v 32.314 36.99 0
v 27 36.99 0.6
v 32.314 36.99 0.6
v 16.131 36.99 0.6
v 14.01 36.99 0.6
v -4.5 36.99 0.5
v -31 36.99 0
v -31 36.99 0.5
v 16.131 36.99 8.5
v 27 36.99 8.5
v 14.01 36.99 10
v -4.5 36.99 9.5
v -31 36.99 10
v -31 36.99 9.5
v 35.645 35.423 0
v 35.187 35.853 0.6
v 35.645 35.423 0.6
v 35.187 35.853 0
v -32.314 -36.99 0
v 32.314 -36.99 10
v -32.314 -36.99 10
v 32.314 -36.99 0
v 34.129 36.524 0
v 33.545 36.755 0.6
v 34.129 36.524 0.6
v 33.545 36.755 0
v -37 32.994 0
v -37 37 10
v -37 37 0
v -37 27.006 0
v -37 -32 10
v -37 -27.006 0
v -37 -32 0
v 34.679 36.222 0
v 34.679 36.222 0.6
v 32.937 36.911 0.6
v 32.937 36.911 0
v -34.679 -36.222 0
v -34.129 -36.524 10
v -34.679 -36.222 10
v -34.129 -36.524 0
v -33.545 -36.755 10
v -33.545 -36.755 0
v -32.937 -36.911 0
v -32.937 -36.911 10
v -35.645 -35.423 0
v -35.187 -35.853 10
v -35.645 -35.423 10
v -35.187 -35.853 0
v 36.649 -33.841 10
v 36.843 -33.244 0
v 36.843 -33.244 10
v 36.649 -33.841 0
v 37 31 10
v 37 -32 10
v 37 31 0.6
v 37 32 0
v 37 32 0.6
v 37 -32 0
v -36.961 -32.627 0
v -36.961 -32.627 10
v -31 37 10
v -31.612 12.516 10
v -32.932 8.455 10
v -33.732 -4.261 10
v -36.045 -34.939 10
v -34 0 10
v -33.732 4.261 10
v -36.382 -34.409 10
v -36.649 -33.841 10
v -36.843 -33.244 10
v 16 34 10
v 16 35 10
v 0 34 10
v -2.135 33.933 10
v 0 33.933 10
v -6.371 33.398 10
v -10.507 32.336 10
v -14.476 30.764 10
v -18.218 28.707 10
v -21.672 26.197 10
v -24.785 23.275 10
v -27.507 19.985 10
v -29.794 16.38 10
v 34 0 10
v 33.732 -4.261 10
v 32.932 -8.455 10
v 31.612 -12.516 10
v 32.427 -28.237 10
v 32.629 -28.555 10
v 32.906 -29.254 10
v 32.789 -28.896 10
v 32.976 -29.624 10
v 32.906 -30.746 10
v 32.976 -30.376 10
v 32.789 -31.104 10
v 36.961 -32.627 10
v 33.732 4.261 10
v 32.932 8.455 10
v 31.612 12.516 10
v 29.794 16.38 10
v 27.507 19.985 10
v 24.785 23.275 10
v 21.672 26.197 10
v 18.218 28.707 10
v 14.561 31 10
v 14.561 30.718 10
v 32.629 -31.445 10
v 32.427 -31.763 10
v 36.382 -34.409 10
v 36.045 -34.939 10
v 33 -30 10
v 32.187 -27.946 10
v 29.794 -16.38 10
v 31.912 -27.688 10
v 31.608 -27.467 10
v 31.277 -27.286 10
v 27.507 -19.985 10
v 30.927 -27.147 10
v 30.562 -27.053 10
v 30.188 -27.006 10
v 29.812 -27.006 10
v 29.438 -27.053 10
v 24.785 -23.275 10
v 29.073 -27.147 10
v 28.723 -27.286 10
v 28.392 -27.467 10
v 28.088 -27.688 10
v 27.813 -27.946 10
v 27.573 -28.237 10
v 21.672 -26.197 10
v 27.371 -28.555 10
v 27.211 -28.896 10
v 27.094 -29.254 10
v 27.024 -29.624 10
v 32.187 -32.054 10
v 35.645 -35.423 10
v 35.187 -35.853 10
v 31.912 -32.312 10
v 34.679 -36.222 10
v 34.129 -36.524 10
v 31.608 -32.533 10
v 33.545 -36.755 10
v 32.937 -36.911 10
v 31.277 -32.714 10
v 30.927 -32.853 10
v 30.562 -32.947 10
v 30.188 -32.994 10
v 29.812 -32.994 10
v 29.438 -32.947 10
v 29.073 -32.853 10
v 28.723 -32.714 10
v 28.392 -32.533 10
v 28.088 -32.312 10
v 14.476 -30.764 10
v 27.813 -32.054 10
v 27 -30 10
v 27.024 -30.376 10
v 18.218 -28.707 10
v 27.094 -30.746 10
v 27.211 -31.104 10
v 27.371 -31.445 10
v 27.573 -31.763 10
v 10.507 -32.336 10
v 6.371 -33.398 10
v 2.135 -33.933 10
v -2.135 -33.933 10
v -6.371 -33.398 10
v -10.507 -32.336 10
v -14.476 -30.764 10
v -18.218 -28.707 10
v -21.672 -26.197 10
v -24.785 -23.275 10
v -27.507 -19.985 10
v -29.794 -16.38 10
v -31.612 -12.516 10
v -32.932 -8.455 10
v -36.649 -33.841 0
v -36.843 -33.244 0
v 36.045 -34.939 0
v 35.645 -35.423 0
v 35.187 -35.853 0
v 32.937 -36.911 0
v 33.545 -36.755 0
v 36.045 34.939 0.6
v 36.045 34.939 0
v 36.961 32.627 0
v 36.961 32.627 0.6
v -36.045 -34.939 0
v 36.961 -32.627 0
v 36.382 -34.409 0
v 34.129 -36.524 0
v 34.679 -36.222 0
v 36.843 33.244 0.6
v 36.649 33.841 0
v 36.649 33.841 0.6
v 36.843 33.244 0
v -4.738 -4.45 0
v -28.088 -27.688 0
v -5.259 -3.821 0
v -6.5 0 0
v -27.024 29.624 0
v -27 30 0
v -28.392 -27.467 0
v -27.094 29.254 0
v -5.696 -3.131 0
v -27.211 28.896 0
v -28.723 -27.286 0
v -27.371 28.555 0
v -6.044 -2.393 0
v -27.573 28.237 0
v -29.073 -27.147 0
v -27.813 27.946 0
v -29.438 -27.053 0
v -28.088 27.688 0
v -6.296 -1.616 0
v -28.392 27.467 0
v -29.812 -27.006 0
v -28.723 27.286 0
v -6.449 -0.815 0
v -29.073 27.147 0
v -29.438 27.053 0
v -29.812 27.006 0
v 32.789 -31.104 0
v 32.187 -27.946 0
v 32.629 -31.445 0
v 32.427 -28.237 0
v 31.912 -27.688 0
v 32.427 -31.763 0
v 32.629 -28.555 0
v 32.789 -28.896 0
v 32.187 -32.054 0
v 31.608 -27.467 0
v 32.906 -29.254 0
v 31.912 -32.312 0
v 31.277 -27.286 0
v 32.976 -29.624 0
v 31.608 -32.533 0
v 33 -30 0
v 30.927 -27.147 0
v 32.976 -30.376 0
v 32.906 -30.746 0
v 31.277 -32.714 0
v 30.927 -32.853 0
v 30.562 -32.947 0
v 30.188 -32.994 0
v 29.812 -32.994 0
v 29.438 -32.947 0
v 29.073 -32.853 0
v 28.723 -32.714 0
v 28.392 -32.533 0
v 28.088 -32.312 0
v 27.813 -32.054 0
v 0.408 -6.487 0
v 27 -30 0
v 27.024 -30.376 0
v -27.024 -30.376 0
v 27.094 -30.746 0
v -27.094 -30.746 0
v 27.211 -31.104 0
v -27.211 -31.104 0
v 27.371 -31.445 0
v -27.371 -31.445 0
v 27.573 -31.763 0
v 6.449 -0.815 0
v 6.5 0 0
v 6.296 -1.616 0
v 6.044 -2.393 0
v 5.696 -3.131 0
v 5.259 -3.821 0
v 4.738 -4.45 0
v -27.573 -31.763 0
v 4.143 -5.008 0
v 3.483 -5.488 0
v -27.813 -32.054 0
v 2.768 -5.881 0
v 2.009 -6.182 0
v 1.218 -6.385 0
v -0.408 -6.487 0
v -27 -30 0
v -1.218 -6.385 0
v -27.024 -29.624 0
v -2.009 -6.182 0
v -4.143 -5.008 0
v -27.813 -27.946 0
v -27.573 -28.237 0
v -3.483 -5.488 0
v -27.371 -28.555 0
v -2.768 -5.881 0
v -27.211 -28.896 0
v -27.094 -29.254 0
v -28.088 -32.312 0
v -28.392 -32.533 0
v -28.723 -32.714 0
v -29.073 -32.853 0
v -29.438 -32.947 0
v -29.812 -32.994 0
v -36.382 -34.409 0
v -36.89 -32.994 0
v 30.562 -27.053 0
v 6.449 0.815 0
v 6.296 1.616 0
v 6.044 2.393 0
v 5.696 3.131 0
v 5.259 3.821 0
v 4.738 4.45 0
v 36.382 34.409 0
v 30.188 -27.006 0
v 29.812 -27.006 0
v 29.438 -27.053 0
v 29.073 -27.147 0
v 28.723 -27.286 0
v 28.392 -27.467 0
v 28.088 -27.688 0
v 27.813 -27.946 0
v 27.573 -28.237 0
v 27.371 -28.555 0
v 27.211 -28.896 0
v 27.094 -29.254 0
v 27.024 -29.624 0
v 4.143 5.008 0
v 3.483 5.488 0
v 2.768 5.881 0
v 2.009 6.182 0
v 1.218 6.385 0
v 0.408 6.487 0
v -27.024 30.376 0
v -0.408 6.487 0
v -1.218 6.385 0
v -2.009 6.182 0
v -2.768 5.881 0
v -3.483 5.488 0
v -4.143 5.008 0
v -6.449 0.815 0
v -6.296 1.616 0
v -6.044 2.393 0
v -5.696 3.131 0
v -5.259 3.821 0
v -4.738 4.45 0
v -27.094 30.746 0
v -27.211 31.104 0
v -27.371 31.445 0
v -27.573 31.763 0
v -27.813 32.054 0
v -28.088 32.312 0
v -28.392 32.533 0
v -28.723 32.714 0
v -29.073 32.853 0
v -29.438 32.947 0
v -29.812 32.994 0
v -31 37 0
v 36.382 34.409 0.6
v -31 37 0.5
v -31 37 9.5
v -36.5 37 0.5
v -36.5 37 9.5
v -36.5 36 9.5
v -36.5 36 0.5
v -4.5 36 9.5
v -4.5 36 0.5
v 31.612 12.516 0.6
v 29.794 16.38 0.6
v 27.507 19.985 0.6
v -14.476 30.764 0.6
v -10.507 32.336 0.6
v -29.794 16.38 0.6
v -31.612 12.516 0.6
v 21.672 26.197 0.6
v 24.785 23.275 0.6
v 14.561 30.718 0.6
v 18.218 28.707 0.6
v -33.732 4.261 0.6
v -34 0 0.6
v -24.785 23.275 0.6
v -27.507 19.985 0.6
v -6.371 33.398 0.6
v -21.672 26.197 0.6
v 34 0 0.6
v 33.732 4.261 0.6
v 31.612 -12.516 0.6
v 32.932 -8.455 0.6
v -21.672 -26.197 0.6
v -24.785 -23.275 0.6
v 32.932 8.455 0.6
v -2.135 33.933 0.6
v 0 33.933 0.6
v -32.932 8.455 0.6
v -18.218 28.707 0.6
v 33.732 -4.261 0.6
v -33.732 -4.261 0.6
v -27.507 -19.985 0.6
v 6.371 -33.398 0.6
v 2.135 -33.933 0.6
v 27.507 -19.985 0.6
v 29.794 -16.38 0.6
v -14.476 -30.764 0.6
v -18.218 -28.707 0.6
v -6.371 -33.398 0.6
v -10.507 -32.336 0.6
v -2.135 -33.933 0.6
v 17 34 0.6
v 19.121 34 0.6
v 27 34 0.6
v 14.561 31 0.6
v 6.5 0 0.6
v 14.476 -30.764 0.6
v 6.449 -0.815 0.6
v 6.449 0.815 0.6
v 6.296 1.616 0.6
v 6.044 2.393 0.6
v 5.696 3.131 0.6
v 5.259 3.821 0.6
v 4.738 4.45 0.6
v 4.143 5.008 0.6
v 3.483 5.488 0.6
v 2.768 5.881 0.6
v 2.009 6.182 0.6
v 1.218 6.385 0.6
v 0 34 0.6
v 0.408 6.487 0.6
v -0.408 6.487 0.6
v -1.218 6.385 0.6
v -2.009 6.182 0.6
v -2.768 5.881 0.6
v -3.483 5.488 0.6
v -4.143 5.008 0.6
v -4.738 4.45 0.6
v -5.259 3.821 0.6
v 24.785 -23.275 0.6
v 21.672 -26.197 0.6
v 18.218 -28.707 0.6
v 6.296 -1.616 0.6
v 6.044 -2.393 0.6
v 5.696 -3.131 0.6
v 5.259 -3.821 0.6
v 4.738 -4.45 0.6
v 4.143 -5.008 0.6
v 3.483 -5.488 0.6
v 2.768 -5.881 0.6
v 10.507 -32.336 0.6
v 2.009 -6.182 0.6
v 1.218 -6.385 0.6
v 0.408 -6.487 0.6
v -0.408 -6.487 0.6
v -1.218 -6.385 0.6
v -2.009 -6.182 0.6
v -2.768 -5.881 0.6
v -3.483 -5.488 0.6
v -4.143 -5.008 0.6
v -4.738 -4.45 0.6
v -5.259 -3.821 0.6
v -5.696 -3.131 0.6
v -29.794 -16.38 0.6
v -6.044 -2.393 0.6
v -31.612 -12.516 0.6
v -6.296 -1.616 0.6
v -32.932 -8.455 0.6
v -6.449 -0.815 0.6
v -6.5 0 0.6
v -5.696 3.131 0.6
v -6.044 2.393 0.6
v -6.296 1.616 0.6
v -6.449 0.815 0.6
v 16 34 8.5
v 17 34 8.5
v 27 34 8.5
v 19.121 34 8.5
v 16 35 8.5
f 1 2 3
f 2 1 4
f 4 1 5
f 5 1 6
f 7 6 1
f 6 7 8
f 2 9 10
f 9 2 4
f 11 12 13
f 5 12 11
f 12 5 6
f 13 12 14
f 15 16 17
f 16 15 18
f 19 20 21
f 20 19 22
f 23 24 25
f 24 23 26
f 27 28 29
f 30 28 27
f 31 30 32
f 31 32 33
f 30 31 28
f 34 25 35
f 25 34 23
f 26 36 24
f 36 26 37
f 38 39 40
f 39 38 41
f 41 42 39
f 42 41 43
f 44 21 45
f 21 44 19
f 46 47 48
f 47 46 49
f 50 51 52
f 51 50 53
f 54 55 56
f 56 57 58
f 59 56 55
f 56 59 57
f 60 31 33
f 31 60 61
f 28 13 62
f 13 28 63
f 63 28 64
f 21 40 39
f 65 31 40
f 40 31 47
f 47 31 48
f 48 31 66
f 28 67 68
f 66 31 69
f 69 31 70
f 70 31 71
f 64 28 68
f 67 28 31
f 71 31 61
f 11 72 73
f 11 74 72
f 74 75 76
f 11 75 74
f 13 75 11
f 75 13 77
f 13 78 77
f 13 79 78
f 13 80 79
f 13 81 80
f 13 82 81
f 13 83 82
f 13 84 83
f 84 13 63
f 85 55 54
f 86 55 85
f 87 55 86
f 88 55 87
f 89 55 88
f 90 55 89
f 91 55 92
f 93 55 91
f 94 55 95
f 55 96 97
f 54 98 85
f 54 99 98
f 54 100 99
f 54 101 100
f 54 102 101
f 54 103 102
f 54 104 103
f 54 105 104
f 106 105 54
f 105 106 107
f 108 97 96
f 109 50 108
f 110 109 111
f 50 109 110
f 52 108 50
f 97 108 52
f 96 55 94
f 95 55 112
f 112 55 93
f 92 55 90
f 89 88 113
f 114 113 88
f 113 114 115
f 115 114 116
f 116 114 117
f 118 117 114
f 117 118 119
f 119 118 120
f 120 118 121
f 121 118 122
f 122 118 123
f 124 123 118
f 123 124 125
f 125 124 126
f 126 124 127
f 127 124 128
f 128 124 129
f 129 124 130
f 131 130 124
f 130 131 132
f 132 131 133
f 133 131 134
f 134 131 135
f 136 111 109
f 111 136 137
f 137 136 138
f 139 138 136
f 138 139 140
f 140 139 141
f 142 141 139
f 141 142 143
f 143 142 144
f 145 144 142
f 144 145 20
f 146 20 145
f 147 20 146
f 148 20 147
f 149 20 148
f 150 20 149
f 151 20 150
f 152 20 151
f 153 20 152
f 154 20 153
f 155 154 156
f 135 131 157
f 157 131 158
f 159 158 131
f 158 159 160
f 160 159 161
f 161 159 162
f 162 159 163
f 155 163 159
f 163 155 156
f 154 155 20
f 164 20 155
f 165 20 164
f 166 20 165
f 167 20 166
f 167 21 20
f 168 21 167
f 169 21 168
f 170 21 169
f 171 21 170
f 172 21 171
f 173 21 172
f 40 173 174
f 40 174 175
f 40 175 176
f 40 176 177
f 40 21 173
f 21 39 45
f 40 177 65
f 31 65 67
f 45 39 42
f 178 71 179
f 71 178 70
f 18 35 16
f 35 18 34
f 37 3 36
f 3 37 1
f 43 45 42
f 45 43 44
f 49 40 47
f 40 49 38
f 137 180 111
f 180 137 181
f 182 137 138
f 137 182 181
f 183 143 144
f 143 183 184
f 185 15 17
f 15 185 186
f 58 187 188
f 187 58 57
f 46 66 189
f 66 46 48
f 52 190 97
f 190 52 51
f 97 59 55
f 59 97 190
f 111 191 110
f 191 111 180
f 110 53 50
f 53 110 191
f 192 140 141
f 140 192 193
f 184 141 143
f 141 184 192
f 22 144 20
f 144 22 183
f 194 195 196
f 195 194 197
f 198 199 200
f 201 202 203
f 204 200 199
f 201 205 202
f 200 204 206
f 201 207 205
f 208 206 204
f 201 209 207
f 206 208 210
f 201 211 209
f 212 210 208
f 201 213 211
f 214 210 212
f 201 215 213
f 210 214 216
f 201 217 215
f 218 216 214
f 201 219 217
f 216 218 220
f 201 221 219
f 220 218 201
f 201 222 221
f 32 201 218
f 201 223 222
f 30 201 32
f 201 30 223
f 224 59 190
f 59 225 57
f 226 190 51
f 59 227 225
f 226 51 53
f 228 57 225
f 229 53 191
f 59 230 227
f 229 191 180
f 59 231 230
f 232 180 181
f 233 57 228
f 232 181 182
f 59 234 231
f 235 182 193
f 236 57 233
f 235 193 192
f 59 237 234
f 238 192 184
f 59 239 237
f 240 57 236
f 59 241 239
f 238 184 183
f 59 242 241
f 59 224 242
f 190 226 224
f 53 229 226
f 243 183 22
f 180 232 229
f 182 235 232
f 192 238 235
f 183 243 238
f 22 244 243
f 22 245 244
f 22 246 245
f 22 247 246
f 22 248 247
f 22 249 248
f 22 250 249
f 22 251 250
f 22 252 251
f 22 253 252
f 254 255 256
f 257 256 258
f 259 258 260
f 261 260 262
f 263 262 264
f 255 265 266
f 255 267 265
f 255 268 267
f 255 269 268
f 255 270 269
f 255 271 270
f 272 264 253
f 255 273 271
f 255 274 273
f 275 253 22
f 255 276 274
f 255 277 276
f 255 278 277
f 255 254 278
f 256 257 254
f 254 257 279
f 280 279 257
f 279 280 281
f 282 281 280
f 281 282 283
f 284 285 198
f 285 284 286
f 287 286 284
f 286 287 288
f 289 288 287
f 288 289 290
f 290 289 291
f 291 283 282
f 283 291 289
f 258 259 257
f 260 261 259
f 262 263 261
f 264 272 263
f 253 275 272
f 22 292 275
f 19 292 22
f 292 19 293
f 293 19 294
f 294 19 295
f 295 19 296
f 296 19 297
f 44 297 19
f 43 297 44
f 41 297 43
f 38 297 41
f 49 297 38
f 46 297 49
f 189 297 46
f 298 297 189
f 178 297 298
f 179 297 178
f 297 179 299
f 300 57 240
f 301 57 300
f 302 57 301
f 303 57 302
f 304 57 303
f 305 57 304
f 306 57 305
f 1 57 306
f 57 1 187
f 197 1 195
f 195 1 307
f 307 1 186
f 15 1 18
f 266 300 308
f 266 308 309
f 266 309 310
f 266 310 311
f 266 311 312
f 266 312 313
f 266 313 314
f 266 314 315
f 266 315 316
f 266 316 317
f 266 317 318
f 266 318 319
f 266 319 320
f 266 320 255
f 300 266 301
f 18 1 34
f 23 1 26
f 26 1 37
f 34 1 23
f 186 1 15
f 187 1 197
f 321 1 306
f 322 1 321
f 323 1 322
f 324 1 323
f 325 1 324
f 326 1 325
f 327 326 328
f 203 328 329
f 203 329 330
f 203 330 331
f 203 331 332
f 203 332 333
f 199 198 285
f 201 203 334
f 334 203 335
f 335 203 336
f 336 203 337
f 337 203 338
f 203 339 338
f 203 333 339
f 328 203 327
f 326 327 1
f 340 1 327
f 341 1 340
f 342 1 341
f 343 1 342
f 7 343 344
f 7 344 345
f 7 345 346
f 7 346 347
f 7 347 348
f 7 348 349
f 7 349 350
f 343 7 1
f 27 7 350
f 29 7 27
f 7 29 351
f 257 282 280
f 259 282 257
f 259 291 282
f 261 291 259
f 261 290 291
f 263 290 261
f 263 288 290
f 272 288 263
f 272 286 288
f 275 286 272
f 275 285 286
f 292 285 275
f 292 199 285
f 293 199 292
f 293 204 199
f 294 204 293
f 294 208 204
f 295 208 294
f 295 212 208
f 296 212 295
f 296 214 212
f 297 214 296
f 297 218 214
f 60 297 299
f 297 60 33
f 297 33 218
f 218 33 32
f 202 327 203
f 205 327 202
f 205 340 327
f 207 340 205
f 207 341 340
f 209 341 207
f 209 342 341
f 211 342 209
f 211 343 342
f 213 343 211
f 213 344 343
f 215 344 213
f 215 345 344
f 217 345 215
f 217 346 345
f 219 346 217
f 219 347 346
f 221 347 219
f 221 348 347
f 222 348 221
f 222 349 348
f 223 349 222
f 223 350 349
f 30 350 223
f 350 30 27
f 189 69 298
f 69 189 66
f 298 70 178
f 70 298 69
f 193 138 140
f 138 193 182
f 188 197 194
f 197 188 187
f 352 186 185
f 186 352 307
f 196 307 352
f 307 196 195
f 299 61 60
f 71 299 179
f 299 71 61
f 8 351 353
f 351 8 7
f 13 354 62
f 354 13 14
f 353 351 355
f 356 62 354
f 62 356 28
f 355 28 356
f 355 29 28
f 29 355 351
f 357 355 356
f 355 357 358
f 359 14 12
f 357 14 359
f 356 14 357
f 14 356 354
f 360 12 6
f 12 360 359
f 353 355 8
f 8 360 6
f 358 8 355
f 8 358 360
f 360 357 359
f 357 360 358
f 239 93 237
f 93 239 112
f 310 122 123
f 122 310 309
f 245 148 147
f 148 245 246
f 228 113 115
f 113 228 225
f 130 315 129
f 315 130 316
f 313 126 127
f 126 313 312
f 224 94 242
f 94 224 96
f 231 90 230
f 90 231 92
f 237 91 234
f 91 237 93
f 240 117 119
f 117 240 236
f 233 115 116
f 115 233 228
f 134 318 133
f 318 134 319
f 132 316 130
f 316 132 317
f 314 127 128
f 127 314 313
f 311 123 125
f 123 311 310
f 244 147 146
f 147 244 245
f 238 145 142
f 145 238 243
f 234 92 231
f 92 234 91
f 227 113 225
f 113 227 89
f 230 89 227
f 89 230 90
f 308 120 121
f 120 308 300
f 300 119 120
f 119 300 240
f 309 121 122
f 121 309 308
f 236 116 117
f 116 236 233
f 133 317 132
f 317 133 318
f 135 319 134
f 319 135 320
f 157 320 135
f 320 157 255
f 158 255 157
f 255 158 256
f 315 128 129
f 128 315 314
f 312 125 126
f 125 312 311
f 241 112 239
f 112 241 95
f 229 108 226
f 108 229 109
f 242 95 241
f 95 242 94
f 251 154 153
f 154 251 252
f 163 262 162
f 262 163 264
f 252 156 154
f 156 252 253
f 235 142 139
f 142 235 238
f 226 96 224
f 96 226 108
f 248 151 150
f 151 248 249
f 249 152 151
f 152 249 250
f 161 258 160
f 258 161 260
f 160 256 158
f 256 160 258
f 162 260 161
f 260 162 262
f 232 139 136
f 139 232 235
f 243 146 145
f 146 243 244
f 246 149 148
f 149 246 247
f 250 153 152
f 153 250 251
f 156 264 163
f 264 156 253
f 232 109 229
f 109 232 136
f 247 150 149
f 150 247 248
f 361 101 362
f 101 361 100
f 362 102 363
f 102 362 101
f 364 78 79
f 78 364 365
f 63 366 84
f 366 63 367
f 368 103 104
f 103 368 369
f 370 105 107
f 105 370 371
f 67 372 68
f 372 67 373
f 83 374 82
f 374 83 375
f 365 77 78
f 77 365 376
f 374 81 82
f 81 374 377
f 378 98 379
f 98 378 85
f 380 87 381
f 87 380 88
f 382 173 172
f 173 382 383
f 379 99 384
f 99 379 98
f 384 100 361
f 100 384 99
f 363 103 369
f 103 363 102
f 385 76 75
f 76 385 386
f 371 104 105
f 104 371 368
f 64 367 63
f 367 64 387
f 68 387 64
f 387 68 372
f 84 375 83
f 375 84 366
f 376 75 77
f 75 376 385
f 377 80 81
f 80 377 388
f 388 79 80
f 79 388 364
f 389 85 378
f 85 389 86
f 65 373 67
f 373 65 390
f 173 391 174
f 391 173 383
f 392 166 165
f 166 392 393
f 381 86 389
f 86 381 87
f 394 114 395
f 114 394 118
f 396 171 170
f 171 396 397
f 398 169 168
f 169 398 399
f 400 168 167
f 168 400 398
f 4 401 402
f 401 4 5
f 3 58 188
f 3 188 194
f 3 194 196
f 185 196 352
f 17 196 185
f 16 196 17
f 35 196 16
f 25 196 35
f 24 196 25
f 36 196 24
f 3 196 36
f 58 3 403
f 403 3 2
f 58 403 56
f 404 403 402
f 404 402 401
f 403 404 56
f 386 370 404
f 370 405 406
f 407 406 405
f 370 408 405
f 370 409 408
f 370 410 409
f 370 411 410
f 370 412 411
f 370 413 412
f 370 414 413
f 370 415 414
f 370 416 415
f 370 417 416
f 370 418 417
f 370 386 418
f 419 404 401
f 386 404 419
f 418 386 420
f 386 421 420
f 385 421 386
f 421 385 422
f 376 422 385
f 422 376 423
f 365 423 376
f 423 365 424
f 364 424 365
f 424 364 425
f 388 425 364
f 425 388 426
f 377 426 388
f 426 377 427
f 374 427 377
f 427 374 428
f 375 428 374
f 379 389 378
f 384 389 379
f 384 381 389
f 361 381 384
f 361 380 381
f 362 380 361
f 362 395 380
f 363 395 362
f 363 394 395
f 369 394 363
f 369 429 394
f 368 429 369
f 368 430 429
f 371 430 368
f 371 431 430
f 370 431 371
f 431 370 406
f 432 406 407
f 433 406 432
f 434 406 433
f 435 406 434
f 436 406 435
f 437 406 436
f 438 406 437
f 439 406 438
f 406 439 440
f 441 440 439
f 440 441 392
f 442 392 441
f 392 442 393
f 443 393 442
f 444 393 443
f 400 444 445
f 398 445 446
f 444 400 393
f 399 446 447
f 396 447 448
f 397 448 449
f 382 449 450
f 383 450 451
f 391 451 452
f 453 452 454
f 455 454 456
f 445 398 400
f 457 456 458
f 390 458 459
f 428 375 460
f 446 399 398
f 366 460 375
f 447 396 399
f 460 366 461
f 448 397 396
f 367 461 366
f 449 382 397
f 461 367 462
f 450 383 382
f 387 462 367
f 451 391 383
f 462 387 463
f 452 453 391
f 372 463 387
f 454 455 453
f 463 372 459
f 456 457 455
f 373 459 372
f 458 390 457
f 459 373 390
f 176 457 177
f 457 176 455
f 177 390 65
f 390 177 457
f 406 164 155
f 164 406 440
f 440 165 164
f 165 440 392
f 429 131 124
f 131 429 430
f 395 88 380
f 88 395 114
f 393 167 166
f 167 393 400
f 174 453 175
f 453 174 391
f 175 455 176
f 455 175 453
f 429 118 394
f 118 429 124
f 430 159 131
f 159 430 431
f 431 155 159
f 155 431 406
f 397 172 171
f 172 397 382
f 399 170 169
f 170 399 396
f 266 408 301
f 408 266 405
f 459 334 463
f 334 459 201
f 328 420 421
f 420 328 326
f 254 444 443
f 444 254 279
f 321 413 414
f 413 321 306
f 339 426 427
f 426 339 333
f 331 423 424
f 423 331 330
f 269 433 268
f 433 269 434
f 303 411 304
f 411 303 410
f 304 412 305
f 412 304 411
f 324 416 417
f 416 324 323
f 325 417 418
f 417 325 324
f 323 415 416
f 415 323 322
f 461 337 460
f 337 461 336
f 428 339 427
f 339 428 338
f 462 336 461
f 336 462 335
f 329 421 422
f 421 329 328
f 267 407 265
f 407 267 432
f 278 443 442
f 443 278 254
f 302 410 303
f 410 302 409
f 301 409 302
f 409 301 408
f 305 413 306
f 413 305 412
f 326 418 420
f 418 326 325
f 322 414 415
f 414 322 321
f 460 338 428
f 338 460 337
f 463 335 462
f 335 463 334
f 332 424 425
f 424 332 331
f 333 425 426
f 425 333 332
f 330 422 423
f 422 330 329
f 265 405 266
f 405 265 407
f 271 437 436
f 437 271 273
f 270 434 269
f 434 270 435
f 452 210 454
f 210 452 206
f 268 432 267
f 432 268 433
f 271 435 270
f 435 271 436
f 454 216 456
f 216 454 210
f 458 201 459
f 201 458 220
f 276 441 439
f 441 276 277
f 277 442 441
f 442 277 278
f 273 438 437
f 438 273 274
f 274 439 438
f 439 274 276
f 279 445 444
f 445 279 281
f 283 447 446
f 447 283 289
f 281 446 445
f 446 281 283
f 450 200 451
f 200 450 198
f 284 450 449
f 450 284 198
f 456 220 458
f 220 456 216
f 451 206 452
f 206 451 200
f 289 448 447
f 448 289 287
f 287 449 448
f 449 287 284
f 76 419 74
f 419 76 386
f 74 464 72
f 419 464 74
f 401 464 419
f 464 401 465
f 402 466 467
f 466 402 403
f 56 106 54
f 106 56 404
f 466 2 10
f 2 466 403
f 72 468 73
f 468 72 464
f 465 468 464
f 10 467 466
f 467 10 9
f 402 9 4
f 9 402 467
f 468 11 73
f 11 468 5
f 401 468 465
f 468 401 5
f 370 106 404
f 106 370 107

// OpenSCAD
$fn = 50;


difference() {
	union() {
		hull() {
			translate(v = [-32.0000000000, 32.0000000000, 0]) {
				cylinder(h = 10, r = 5);
			}
			translate(v = [32.0000000000, 32.0000000000, 0]) {
				cylinder(h = 10, r = 5);
			}
			translate(v = [-32.0000000000, -32.0000000000, 0]) {
				cylinder(h = 10, r = 5);
			}
			translate(v = [32.0000000000, -32.0000000000, 0]) {
				cylinder(h = 10, r = 5);
			}
		}
		translate(v = [-37.0000000000, 31.0000000000, 0]) {
			cube(size = [6, 6, 10]);
		}
	}
	union() {
		translate(v = [-37.5000000000, -30.0000000000, -250.0000000000]) {
			rotate(a = [0, 0, 0]) {
				difference() {
					union() {
						hull() {
							translate(v = [7.5000000000, 0, 0]) {
								cylinder(h = 250, r = 3.0000000000, r1 = 3.0000000000, r2 = 3.0000000000);
							}
							translate(v = [-7.5000000000, 0, 0]) {
								cylinder(h = 250, r = 3.0000000000, r1 = 3.0000000000, r2 = 3.0000000000);
							}
						}
					}
					union();
				}
			}
		}
		translate(v = [-37.5000000000, 30.0000000000, -250.0000000000]) {
			rotate(a = [0, 0, 0]) {
				difference() {
					union() {
						hull() {
							translate(v = [7.5000000000, 0, 0]) {
								cylinder(h = 250, r = 3.0000000000, r1 = 3.0000000000, r2 = 3.0000000000);
							}
							translate(v = [-7.5000000000, 0, 0]) {
								cylinder(h = 250, r = 3.0000000000, r1 = 3.0000000000, r2 = 3.0000000000);
							}
						}
					}
					union();
				}
			}
		}
		translate(v = [-36.5000000000, 36.0000000000, 0.5000000000]) {
			cube(size = [32, 1, 9.0000000000]);
		}
		translate(v = [30.0000000000, -30.0000000000, -50.0000000000]) {
			cylinder(h = 100, r = 3.0000000000);
		}
		translate(v = [0, 0, 0.6000000000]) {
			cylinder(h = 12.4000000000, r = 34.0000000000);
		}
		translate(v = [0, 0, -5.0000000000]) {
			cylinder(h = 10, r = 6.5000000000);
		}
		translate(v = [0.0000000000, 31.0000000000, 0.6000000000]) {
			cube(size = [37.0000000000, 3, 12.4000000000]);
		}
		translate(v = [27.0000000000, 31.0000000000, 0.6000000000]) {
			cube(size = [10, 6, 12.4000000000]);
		}
		translate(v = [16.0000000000, 31.0000000000, 8.5000000000]) {
			cube(size = [21, 6, 1.5000000000]);
		}
		translate(v = [13.2500000000, 37.7500000000, 0.6000000000]) {
			rotate(a = [0, 0, -45]) {
				cube(size = [7.5000000000, 1.5000000000, 12.4000000000]);
			}
		}
		translate(v = [7.0610000000, 29.0000000000, 0.6000000000]) {
			cube(size = [7.5000000000, 2, 9.4000000000]);
		}
	}
}
